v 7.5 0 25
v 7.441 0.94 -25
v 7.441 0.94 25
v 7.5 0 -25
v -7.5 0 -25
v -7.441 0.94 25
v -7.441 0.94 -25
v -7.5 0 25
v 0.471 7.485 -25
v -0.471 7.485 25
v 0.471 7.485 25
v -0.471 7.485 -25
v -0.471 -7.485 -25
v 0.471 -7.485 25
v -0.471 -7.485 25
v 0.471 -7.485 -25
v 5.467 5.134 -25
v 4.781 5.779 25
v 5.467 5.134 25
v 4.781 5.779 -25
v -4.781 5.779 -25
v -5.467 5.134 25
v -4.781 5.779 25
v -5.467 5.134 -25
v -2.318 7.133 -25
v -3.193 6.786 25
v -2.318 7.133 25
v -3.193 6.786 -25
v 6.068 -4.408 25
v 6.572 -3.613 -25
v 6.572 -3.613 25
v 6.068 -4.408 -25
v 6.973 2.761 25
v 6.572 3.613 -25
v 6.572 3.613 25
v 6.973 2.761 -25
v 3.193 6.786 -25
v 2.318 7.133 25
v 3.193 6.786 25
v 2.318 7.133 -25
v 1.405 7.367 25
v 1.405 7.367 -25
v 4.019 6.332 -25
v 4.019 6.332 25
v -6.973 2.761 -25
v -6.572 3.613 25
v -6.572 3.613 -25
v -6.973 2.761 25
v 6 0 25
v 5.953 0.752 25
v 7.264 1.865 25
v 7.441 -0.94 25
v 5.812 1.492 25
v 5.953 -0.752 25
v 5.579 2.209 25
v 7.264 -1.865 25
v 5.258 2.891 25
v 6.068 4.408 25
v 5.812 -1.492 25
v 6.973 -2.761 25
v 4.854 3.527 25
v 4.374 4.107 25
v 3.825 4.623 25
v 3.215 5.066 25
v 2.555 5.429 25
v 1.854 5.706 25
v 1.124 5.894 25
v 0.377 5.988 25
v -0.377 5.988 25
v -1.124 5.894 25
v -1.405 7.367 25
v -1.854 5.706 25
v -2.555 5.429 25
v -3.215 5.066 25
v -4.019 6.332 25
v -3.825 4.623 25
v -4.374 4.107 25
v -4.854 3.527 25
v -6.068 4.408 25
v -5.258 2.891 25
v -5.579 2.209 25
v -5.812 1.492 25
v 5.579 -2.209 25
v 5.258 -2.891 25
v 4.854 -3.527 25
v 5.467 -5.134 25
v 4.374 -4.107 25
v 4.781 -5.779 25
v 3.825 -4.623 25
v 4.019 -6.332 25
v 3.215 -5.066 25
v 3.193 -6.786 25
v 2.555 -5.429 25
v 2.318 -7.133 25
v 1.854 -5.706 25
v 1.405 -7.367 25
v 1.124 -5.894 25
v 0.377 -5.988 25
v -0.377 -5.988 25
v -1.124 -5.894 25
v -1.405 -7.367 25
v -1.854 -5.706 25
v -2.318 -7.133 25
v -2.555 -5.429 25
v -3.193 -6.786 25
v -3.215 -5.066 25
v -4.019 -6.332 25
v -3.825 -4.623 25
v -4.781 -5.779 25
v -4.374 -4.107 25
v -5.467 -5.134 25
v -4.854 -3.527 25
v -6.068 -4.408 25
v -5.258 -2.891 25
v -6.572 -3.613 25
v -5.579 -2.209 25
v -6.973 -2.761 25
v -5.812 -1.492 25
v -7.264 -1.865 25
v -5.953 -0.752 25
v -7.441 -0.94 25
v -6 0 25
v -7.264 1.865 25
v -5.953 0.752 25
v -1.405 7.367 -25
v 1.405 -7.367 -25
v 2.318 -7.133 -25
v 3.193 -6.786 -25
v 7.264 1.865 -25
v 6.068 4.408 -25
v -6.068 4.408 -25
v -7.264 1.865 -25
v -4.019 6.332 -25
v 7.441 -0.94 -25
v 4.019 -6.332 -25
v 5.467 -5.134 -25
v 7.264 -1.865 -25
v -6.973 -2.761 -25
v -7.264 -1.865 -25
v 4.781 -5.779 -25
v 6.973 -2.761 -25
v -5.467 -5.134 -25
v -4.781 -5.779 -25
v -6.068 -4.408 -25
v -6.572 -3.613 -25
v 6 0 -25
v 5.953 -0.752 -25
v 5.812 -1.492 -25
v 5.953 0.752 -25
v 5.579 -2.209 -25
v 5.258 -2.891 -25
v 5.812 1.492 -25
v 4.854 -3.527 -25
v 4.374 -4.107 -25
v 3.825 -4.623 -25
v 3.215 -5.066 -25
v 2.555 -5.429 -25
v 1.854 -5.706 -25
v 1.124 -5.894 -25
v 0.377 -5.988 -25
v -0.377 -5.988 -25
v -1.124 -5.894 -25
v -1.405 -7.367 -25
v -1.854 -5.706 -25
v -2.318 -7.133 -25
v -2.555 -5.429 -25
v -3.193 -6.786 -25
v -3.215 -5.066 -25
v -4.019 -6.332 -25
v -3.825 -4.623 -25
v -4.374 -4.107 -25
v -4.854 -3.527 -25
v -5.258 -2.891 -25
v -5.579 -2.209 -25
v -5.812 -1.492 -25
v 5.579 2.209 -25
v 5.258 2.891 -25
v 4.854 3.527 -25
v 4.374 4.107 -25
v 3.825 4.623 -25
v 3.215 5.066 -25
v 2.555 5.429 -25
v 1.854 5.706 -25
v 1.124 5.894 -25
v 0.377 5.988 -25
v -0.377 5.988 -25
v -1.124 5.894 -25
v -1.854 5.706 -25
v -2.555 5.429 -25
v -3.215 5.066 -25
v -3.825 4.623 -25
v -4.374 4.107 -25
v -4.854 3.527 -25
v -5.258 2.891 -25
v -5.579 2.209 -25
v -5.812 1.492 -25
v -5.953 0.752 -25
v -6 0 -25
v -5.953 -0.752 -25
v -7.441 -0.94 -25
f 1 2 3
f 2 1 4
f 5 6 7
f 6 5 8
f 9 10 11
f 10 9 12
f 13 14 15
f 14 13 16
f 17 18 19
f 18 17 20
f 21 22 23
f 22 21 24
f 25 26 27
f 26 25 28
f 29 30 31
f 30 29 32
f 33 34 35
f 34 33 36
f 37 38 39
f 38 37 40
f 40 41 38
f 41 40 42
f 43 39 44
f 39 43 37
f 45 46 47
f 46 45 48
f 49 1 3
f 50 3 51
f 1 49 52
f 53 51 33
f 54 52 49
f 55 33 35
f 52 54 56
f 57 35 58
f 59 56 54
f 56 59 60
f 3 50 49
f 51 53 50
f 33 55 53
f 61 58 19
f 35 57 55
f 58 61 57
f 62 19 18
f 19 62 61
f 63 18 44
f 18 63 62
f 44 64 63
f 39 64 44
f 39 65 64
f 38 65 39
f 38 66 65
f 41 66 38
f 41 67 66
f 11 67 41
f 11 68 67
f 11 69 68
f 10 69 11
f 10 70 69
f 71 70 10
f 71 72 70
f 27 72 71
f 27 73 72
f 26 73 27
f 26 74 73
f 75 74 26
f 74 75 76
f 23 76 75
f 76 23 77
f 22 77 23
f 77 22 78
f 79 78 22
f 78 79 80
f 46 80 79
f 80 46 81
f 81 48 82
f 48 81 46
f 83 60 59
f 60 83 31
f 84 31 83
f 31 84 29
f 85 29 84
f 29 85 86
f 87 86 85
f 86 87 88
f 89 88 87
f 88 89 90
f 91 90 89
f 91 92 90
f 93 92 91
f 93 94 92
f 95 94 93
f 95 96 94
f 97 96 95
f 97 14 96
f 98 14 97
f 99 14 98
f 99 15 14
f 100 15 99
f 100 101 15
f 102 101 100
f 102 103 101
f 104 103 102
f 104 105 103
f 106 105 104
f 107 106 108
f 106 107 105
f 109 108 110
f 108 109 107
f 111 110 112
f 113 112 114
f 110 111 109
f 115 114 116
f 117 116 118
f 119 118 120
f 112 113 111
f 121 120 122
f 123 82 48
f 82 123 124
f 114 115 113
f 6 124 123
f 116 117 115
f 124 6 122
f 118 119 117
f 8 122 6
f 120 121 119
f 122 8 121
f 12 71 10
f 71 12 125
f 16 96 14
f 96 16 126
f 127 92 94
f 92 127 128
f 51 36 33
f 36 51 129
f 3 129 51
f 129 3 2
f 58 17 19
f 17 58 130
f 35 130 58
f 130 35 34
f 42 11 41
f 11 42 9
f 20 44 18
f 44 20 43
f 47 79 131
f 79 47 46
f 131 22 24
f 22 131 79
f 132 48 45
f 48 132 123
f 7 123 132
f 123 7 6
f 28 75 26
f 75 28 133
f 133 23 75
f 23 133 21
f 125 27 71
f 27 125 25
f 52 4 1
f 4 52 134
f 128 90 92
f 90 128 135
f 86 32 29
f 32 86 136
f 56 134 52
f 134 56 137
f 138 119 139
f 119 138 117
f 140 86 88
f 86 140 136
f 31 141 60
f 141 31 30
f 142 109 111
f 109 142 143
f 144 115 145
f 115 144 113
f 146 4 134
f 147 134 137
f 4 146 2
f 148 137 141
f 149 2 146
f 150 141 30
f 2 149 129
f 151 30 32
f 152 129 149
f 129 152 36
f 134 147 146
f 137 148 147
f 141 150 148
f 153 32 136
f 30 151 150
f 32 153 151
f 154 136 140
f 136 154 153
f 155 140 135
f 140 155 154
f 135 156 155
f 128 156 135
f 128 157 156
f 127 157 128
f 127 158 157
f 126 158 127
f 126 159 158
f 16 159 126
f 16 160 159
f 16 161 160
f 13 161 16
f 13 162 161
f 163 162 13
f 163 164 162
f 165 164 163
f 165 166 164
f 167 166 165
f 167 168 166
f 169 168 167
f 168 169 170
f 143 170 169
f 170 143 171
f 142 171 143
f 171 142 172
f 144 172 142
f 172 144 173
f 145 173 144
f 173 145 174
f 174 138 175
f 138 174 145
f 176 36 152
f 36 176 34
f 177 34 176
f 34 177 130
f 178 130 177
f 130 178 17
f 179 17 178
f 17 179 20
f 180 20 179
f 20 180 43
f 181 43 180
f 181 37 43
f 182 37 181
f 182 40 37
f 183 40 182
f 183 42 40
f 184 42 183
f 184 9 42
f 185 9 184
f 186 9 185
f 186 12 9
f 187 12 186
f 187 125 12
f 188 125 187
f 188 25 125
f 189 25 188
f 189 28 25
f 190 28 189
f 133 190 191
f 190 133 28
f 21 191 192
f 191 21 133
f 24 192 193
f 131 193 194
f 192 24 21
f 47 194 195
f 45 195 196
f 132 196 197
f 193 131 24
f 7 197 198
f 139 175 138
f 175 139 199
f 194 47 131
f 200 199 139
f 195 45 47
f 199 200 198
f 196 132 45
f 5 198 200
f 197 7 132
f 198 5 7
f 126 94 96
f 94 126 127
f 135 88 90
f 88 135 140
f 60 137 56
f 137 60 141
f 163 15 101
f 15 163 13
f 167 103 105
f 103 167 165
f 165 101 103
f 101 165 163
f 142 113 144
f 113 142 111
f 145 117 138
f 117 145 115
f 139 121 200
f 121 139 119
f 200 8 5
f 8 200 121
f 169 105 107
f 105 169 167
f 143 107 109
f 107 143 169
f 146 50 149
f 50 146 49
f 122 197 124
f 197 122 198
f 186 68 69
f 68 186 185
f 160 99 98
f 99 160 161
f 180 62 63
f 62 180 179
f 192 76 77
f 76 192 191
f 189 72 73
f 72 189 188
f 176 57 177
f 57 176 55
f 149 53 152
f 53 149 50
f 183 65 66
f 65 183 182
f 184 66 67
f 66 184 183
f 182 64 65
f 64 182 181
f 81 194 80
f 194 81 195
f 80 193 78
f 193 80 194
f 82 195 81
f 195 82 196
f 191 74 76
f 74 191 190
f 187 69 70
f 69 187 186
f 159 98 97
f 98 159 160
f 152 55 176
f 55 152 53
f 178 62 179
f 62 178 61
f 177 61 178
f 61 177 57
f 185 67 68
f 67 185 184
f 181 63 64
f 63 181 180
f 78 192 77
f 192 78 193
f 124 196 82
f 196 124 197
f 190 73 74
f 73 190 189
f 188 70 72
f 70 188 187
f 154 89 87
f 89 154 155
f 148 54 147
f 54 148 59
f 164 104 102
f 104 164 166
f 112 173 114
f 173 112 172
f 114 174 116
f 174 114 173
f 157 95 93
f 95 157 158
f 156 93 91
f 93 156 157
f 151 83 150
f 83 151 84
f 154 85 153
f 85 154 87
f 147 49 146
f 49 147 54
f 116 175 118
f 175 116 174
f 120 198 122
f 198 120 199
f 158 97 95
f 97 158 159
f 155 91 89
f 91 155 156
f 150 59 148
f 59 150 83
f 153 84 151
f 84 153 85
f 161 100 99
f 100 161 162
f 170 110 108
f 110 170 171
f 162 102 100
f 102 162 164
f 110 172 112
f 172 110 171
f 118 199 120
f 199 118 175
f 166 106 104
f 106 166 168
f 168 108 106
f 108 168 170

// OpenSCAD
$fn = 50;


difference() {
	union() {
		translate(v = [0, 0, -25.0000000000]) {
			cylinder(h = 50, r = 7.5000000000);
		}
	}
	union() {
		translate(v = [0, 0, -100.0000000000]) {
			cylinder(h = 200, r = 6);
		}
	}
}
